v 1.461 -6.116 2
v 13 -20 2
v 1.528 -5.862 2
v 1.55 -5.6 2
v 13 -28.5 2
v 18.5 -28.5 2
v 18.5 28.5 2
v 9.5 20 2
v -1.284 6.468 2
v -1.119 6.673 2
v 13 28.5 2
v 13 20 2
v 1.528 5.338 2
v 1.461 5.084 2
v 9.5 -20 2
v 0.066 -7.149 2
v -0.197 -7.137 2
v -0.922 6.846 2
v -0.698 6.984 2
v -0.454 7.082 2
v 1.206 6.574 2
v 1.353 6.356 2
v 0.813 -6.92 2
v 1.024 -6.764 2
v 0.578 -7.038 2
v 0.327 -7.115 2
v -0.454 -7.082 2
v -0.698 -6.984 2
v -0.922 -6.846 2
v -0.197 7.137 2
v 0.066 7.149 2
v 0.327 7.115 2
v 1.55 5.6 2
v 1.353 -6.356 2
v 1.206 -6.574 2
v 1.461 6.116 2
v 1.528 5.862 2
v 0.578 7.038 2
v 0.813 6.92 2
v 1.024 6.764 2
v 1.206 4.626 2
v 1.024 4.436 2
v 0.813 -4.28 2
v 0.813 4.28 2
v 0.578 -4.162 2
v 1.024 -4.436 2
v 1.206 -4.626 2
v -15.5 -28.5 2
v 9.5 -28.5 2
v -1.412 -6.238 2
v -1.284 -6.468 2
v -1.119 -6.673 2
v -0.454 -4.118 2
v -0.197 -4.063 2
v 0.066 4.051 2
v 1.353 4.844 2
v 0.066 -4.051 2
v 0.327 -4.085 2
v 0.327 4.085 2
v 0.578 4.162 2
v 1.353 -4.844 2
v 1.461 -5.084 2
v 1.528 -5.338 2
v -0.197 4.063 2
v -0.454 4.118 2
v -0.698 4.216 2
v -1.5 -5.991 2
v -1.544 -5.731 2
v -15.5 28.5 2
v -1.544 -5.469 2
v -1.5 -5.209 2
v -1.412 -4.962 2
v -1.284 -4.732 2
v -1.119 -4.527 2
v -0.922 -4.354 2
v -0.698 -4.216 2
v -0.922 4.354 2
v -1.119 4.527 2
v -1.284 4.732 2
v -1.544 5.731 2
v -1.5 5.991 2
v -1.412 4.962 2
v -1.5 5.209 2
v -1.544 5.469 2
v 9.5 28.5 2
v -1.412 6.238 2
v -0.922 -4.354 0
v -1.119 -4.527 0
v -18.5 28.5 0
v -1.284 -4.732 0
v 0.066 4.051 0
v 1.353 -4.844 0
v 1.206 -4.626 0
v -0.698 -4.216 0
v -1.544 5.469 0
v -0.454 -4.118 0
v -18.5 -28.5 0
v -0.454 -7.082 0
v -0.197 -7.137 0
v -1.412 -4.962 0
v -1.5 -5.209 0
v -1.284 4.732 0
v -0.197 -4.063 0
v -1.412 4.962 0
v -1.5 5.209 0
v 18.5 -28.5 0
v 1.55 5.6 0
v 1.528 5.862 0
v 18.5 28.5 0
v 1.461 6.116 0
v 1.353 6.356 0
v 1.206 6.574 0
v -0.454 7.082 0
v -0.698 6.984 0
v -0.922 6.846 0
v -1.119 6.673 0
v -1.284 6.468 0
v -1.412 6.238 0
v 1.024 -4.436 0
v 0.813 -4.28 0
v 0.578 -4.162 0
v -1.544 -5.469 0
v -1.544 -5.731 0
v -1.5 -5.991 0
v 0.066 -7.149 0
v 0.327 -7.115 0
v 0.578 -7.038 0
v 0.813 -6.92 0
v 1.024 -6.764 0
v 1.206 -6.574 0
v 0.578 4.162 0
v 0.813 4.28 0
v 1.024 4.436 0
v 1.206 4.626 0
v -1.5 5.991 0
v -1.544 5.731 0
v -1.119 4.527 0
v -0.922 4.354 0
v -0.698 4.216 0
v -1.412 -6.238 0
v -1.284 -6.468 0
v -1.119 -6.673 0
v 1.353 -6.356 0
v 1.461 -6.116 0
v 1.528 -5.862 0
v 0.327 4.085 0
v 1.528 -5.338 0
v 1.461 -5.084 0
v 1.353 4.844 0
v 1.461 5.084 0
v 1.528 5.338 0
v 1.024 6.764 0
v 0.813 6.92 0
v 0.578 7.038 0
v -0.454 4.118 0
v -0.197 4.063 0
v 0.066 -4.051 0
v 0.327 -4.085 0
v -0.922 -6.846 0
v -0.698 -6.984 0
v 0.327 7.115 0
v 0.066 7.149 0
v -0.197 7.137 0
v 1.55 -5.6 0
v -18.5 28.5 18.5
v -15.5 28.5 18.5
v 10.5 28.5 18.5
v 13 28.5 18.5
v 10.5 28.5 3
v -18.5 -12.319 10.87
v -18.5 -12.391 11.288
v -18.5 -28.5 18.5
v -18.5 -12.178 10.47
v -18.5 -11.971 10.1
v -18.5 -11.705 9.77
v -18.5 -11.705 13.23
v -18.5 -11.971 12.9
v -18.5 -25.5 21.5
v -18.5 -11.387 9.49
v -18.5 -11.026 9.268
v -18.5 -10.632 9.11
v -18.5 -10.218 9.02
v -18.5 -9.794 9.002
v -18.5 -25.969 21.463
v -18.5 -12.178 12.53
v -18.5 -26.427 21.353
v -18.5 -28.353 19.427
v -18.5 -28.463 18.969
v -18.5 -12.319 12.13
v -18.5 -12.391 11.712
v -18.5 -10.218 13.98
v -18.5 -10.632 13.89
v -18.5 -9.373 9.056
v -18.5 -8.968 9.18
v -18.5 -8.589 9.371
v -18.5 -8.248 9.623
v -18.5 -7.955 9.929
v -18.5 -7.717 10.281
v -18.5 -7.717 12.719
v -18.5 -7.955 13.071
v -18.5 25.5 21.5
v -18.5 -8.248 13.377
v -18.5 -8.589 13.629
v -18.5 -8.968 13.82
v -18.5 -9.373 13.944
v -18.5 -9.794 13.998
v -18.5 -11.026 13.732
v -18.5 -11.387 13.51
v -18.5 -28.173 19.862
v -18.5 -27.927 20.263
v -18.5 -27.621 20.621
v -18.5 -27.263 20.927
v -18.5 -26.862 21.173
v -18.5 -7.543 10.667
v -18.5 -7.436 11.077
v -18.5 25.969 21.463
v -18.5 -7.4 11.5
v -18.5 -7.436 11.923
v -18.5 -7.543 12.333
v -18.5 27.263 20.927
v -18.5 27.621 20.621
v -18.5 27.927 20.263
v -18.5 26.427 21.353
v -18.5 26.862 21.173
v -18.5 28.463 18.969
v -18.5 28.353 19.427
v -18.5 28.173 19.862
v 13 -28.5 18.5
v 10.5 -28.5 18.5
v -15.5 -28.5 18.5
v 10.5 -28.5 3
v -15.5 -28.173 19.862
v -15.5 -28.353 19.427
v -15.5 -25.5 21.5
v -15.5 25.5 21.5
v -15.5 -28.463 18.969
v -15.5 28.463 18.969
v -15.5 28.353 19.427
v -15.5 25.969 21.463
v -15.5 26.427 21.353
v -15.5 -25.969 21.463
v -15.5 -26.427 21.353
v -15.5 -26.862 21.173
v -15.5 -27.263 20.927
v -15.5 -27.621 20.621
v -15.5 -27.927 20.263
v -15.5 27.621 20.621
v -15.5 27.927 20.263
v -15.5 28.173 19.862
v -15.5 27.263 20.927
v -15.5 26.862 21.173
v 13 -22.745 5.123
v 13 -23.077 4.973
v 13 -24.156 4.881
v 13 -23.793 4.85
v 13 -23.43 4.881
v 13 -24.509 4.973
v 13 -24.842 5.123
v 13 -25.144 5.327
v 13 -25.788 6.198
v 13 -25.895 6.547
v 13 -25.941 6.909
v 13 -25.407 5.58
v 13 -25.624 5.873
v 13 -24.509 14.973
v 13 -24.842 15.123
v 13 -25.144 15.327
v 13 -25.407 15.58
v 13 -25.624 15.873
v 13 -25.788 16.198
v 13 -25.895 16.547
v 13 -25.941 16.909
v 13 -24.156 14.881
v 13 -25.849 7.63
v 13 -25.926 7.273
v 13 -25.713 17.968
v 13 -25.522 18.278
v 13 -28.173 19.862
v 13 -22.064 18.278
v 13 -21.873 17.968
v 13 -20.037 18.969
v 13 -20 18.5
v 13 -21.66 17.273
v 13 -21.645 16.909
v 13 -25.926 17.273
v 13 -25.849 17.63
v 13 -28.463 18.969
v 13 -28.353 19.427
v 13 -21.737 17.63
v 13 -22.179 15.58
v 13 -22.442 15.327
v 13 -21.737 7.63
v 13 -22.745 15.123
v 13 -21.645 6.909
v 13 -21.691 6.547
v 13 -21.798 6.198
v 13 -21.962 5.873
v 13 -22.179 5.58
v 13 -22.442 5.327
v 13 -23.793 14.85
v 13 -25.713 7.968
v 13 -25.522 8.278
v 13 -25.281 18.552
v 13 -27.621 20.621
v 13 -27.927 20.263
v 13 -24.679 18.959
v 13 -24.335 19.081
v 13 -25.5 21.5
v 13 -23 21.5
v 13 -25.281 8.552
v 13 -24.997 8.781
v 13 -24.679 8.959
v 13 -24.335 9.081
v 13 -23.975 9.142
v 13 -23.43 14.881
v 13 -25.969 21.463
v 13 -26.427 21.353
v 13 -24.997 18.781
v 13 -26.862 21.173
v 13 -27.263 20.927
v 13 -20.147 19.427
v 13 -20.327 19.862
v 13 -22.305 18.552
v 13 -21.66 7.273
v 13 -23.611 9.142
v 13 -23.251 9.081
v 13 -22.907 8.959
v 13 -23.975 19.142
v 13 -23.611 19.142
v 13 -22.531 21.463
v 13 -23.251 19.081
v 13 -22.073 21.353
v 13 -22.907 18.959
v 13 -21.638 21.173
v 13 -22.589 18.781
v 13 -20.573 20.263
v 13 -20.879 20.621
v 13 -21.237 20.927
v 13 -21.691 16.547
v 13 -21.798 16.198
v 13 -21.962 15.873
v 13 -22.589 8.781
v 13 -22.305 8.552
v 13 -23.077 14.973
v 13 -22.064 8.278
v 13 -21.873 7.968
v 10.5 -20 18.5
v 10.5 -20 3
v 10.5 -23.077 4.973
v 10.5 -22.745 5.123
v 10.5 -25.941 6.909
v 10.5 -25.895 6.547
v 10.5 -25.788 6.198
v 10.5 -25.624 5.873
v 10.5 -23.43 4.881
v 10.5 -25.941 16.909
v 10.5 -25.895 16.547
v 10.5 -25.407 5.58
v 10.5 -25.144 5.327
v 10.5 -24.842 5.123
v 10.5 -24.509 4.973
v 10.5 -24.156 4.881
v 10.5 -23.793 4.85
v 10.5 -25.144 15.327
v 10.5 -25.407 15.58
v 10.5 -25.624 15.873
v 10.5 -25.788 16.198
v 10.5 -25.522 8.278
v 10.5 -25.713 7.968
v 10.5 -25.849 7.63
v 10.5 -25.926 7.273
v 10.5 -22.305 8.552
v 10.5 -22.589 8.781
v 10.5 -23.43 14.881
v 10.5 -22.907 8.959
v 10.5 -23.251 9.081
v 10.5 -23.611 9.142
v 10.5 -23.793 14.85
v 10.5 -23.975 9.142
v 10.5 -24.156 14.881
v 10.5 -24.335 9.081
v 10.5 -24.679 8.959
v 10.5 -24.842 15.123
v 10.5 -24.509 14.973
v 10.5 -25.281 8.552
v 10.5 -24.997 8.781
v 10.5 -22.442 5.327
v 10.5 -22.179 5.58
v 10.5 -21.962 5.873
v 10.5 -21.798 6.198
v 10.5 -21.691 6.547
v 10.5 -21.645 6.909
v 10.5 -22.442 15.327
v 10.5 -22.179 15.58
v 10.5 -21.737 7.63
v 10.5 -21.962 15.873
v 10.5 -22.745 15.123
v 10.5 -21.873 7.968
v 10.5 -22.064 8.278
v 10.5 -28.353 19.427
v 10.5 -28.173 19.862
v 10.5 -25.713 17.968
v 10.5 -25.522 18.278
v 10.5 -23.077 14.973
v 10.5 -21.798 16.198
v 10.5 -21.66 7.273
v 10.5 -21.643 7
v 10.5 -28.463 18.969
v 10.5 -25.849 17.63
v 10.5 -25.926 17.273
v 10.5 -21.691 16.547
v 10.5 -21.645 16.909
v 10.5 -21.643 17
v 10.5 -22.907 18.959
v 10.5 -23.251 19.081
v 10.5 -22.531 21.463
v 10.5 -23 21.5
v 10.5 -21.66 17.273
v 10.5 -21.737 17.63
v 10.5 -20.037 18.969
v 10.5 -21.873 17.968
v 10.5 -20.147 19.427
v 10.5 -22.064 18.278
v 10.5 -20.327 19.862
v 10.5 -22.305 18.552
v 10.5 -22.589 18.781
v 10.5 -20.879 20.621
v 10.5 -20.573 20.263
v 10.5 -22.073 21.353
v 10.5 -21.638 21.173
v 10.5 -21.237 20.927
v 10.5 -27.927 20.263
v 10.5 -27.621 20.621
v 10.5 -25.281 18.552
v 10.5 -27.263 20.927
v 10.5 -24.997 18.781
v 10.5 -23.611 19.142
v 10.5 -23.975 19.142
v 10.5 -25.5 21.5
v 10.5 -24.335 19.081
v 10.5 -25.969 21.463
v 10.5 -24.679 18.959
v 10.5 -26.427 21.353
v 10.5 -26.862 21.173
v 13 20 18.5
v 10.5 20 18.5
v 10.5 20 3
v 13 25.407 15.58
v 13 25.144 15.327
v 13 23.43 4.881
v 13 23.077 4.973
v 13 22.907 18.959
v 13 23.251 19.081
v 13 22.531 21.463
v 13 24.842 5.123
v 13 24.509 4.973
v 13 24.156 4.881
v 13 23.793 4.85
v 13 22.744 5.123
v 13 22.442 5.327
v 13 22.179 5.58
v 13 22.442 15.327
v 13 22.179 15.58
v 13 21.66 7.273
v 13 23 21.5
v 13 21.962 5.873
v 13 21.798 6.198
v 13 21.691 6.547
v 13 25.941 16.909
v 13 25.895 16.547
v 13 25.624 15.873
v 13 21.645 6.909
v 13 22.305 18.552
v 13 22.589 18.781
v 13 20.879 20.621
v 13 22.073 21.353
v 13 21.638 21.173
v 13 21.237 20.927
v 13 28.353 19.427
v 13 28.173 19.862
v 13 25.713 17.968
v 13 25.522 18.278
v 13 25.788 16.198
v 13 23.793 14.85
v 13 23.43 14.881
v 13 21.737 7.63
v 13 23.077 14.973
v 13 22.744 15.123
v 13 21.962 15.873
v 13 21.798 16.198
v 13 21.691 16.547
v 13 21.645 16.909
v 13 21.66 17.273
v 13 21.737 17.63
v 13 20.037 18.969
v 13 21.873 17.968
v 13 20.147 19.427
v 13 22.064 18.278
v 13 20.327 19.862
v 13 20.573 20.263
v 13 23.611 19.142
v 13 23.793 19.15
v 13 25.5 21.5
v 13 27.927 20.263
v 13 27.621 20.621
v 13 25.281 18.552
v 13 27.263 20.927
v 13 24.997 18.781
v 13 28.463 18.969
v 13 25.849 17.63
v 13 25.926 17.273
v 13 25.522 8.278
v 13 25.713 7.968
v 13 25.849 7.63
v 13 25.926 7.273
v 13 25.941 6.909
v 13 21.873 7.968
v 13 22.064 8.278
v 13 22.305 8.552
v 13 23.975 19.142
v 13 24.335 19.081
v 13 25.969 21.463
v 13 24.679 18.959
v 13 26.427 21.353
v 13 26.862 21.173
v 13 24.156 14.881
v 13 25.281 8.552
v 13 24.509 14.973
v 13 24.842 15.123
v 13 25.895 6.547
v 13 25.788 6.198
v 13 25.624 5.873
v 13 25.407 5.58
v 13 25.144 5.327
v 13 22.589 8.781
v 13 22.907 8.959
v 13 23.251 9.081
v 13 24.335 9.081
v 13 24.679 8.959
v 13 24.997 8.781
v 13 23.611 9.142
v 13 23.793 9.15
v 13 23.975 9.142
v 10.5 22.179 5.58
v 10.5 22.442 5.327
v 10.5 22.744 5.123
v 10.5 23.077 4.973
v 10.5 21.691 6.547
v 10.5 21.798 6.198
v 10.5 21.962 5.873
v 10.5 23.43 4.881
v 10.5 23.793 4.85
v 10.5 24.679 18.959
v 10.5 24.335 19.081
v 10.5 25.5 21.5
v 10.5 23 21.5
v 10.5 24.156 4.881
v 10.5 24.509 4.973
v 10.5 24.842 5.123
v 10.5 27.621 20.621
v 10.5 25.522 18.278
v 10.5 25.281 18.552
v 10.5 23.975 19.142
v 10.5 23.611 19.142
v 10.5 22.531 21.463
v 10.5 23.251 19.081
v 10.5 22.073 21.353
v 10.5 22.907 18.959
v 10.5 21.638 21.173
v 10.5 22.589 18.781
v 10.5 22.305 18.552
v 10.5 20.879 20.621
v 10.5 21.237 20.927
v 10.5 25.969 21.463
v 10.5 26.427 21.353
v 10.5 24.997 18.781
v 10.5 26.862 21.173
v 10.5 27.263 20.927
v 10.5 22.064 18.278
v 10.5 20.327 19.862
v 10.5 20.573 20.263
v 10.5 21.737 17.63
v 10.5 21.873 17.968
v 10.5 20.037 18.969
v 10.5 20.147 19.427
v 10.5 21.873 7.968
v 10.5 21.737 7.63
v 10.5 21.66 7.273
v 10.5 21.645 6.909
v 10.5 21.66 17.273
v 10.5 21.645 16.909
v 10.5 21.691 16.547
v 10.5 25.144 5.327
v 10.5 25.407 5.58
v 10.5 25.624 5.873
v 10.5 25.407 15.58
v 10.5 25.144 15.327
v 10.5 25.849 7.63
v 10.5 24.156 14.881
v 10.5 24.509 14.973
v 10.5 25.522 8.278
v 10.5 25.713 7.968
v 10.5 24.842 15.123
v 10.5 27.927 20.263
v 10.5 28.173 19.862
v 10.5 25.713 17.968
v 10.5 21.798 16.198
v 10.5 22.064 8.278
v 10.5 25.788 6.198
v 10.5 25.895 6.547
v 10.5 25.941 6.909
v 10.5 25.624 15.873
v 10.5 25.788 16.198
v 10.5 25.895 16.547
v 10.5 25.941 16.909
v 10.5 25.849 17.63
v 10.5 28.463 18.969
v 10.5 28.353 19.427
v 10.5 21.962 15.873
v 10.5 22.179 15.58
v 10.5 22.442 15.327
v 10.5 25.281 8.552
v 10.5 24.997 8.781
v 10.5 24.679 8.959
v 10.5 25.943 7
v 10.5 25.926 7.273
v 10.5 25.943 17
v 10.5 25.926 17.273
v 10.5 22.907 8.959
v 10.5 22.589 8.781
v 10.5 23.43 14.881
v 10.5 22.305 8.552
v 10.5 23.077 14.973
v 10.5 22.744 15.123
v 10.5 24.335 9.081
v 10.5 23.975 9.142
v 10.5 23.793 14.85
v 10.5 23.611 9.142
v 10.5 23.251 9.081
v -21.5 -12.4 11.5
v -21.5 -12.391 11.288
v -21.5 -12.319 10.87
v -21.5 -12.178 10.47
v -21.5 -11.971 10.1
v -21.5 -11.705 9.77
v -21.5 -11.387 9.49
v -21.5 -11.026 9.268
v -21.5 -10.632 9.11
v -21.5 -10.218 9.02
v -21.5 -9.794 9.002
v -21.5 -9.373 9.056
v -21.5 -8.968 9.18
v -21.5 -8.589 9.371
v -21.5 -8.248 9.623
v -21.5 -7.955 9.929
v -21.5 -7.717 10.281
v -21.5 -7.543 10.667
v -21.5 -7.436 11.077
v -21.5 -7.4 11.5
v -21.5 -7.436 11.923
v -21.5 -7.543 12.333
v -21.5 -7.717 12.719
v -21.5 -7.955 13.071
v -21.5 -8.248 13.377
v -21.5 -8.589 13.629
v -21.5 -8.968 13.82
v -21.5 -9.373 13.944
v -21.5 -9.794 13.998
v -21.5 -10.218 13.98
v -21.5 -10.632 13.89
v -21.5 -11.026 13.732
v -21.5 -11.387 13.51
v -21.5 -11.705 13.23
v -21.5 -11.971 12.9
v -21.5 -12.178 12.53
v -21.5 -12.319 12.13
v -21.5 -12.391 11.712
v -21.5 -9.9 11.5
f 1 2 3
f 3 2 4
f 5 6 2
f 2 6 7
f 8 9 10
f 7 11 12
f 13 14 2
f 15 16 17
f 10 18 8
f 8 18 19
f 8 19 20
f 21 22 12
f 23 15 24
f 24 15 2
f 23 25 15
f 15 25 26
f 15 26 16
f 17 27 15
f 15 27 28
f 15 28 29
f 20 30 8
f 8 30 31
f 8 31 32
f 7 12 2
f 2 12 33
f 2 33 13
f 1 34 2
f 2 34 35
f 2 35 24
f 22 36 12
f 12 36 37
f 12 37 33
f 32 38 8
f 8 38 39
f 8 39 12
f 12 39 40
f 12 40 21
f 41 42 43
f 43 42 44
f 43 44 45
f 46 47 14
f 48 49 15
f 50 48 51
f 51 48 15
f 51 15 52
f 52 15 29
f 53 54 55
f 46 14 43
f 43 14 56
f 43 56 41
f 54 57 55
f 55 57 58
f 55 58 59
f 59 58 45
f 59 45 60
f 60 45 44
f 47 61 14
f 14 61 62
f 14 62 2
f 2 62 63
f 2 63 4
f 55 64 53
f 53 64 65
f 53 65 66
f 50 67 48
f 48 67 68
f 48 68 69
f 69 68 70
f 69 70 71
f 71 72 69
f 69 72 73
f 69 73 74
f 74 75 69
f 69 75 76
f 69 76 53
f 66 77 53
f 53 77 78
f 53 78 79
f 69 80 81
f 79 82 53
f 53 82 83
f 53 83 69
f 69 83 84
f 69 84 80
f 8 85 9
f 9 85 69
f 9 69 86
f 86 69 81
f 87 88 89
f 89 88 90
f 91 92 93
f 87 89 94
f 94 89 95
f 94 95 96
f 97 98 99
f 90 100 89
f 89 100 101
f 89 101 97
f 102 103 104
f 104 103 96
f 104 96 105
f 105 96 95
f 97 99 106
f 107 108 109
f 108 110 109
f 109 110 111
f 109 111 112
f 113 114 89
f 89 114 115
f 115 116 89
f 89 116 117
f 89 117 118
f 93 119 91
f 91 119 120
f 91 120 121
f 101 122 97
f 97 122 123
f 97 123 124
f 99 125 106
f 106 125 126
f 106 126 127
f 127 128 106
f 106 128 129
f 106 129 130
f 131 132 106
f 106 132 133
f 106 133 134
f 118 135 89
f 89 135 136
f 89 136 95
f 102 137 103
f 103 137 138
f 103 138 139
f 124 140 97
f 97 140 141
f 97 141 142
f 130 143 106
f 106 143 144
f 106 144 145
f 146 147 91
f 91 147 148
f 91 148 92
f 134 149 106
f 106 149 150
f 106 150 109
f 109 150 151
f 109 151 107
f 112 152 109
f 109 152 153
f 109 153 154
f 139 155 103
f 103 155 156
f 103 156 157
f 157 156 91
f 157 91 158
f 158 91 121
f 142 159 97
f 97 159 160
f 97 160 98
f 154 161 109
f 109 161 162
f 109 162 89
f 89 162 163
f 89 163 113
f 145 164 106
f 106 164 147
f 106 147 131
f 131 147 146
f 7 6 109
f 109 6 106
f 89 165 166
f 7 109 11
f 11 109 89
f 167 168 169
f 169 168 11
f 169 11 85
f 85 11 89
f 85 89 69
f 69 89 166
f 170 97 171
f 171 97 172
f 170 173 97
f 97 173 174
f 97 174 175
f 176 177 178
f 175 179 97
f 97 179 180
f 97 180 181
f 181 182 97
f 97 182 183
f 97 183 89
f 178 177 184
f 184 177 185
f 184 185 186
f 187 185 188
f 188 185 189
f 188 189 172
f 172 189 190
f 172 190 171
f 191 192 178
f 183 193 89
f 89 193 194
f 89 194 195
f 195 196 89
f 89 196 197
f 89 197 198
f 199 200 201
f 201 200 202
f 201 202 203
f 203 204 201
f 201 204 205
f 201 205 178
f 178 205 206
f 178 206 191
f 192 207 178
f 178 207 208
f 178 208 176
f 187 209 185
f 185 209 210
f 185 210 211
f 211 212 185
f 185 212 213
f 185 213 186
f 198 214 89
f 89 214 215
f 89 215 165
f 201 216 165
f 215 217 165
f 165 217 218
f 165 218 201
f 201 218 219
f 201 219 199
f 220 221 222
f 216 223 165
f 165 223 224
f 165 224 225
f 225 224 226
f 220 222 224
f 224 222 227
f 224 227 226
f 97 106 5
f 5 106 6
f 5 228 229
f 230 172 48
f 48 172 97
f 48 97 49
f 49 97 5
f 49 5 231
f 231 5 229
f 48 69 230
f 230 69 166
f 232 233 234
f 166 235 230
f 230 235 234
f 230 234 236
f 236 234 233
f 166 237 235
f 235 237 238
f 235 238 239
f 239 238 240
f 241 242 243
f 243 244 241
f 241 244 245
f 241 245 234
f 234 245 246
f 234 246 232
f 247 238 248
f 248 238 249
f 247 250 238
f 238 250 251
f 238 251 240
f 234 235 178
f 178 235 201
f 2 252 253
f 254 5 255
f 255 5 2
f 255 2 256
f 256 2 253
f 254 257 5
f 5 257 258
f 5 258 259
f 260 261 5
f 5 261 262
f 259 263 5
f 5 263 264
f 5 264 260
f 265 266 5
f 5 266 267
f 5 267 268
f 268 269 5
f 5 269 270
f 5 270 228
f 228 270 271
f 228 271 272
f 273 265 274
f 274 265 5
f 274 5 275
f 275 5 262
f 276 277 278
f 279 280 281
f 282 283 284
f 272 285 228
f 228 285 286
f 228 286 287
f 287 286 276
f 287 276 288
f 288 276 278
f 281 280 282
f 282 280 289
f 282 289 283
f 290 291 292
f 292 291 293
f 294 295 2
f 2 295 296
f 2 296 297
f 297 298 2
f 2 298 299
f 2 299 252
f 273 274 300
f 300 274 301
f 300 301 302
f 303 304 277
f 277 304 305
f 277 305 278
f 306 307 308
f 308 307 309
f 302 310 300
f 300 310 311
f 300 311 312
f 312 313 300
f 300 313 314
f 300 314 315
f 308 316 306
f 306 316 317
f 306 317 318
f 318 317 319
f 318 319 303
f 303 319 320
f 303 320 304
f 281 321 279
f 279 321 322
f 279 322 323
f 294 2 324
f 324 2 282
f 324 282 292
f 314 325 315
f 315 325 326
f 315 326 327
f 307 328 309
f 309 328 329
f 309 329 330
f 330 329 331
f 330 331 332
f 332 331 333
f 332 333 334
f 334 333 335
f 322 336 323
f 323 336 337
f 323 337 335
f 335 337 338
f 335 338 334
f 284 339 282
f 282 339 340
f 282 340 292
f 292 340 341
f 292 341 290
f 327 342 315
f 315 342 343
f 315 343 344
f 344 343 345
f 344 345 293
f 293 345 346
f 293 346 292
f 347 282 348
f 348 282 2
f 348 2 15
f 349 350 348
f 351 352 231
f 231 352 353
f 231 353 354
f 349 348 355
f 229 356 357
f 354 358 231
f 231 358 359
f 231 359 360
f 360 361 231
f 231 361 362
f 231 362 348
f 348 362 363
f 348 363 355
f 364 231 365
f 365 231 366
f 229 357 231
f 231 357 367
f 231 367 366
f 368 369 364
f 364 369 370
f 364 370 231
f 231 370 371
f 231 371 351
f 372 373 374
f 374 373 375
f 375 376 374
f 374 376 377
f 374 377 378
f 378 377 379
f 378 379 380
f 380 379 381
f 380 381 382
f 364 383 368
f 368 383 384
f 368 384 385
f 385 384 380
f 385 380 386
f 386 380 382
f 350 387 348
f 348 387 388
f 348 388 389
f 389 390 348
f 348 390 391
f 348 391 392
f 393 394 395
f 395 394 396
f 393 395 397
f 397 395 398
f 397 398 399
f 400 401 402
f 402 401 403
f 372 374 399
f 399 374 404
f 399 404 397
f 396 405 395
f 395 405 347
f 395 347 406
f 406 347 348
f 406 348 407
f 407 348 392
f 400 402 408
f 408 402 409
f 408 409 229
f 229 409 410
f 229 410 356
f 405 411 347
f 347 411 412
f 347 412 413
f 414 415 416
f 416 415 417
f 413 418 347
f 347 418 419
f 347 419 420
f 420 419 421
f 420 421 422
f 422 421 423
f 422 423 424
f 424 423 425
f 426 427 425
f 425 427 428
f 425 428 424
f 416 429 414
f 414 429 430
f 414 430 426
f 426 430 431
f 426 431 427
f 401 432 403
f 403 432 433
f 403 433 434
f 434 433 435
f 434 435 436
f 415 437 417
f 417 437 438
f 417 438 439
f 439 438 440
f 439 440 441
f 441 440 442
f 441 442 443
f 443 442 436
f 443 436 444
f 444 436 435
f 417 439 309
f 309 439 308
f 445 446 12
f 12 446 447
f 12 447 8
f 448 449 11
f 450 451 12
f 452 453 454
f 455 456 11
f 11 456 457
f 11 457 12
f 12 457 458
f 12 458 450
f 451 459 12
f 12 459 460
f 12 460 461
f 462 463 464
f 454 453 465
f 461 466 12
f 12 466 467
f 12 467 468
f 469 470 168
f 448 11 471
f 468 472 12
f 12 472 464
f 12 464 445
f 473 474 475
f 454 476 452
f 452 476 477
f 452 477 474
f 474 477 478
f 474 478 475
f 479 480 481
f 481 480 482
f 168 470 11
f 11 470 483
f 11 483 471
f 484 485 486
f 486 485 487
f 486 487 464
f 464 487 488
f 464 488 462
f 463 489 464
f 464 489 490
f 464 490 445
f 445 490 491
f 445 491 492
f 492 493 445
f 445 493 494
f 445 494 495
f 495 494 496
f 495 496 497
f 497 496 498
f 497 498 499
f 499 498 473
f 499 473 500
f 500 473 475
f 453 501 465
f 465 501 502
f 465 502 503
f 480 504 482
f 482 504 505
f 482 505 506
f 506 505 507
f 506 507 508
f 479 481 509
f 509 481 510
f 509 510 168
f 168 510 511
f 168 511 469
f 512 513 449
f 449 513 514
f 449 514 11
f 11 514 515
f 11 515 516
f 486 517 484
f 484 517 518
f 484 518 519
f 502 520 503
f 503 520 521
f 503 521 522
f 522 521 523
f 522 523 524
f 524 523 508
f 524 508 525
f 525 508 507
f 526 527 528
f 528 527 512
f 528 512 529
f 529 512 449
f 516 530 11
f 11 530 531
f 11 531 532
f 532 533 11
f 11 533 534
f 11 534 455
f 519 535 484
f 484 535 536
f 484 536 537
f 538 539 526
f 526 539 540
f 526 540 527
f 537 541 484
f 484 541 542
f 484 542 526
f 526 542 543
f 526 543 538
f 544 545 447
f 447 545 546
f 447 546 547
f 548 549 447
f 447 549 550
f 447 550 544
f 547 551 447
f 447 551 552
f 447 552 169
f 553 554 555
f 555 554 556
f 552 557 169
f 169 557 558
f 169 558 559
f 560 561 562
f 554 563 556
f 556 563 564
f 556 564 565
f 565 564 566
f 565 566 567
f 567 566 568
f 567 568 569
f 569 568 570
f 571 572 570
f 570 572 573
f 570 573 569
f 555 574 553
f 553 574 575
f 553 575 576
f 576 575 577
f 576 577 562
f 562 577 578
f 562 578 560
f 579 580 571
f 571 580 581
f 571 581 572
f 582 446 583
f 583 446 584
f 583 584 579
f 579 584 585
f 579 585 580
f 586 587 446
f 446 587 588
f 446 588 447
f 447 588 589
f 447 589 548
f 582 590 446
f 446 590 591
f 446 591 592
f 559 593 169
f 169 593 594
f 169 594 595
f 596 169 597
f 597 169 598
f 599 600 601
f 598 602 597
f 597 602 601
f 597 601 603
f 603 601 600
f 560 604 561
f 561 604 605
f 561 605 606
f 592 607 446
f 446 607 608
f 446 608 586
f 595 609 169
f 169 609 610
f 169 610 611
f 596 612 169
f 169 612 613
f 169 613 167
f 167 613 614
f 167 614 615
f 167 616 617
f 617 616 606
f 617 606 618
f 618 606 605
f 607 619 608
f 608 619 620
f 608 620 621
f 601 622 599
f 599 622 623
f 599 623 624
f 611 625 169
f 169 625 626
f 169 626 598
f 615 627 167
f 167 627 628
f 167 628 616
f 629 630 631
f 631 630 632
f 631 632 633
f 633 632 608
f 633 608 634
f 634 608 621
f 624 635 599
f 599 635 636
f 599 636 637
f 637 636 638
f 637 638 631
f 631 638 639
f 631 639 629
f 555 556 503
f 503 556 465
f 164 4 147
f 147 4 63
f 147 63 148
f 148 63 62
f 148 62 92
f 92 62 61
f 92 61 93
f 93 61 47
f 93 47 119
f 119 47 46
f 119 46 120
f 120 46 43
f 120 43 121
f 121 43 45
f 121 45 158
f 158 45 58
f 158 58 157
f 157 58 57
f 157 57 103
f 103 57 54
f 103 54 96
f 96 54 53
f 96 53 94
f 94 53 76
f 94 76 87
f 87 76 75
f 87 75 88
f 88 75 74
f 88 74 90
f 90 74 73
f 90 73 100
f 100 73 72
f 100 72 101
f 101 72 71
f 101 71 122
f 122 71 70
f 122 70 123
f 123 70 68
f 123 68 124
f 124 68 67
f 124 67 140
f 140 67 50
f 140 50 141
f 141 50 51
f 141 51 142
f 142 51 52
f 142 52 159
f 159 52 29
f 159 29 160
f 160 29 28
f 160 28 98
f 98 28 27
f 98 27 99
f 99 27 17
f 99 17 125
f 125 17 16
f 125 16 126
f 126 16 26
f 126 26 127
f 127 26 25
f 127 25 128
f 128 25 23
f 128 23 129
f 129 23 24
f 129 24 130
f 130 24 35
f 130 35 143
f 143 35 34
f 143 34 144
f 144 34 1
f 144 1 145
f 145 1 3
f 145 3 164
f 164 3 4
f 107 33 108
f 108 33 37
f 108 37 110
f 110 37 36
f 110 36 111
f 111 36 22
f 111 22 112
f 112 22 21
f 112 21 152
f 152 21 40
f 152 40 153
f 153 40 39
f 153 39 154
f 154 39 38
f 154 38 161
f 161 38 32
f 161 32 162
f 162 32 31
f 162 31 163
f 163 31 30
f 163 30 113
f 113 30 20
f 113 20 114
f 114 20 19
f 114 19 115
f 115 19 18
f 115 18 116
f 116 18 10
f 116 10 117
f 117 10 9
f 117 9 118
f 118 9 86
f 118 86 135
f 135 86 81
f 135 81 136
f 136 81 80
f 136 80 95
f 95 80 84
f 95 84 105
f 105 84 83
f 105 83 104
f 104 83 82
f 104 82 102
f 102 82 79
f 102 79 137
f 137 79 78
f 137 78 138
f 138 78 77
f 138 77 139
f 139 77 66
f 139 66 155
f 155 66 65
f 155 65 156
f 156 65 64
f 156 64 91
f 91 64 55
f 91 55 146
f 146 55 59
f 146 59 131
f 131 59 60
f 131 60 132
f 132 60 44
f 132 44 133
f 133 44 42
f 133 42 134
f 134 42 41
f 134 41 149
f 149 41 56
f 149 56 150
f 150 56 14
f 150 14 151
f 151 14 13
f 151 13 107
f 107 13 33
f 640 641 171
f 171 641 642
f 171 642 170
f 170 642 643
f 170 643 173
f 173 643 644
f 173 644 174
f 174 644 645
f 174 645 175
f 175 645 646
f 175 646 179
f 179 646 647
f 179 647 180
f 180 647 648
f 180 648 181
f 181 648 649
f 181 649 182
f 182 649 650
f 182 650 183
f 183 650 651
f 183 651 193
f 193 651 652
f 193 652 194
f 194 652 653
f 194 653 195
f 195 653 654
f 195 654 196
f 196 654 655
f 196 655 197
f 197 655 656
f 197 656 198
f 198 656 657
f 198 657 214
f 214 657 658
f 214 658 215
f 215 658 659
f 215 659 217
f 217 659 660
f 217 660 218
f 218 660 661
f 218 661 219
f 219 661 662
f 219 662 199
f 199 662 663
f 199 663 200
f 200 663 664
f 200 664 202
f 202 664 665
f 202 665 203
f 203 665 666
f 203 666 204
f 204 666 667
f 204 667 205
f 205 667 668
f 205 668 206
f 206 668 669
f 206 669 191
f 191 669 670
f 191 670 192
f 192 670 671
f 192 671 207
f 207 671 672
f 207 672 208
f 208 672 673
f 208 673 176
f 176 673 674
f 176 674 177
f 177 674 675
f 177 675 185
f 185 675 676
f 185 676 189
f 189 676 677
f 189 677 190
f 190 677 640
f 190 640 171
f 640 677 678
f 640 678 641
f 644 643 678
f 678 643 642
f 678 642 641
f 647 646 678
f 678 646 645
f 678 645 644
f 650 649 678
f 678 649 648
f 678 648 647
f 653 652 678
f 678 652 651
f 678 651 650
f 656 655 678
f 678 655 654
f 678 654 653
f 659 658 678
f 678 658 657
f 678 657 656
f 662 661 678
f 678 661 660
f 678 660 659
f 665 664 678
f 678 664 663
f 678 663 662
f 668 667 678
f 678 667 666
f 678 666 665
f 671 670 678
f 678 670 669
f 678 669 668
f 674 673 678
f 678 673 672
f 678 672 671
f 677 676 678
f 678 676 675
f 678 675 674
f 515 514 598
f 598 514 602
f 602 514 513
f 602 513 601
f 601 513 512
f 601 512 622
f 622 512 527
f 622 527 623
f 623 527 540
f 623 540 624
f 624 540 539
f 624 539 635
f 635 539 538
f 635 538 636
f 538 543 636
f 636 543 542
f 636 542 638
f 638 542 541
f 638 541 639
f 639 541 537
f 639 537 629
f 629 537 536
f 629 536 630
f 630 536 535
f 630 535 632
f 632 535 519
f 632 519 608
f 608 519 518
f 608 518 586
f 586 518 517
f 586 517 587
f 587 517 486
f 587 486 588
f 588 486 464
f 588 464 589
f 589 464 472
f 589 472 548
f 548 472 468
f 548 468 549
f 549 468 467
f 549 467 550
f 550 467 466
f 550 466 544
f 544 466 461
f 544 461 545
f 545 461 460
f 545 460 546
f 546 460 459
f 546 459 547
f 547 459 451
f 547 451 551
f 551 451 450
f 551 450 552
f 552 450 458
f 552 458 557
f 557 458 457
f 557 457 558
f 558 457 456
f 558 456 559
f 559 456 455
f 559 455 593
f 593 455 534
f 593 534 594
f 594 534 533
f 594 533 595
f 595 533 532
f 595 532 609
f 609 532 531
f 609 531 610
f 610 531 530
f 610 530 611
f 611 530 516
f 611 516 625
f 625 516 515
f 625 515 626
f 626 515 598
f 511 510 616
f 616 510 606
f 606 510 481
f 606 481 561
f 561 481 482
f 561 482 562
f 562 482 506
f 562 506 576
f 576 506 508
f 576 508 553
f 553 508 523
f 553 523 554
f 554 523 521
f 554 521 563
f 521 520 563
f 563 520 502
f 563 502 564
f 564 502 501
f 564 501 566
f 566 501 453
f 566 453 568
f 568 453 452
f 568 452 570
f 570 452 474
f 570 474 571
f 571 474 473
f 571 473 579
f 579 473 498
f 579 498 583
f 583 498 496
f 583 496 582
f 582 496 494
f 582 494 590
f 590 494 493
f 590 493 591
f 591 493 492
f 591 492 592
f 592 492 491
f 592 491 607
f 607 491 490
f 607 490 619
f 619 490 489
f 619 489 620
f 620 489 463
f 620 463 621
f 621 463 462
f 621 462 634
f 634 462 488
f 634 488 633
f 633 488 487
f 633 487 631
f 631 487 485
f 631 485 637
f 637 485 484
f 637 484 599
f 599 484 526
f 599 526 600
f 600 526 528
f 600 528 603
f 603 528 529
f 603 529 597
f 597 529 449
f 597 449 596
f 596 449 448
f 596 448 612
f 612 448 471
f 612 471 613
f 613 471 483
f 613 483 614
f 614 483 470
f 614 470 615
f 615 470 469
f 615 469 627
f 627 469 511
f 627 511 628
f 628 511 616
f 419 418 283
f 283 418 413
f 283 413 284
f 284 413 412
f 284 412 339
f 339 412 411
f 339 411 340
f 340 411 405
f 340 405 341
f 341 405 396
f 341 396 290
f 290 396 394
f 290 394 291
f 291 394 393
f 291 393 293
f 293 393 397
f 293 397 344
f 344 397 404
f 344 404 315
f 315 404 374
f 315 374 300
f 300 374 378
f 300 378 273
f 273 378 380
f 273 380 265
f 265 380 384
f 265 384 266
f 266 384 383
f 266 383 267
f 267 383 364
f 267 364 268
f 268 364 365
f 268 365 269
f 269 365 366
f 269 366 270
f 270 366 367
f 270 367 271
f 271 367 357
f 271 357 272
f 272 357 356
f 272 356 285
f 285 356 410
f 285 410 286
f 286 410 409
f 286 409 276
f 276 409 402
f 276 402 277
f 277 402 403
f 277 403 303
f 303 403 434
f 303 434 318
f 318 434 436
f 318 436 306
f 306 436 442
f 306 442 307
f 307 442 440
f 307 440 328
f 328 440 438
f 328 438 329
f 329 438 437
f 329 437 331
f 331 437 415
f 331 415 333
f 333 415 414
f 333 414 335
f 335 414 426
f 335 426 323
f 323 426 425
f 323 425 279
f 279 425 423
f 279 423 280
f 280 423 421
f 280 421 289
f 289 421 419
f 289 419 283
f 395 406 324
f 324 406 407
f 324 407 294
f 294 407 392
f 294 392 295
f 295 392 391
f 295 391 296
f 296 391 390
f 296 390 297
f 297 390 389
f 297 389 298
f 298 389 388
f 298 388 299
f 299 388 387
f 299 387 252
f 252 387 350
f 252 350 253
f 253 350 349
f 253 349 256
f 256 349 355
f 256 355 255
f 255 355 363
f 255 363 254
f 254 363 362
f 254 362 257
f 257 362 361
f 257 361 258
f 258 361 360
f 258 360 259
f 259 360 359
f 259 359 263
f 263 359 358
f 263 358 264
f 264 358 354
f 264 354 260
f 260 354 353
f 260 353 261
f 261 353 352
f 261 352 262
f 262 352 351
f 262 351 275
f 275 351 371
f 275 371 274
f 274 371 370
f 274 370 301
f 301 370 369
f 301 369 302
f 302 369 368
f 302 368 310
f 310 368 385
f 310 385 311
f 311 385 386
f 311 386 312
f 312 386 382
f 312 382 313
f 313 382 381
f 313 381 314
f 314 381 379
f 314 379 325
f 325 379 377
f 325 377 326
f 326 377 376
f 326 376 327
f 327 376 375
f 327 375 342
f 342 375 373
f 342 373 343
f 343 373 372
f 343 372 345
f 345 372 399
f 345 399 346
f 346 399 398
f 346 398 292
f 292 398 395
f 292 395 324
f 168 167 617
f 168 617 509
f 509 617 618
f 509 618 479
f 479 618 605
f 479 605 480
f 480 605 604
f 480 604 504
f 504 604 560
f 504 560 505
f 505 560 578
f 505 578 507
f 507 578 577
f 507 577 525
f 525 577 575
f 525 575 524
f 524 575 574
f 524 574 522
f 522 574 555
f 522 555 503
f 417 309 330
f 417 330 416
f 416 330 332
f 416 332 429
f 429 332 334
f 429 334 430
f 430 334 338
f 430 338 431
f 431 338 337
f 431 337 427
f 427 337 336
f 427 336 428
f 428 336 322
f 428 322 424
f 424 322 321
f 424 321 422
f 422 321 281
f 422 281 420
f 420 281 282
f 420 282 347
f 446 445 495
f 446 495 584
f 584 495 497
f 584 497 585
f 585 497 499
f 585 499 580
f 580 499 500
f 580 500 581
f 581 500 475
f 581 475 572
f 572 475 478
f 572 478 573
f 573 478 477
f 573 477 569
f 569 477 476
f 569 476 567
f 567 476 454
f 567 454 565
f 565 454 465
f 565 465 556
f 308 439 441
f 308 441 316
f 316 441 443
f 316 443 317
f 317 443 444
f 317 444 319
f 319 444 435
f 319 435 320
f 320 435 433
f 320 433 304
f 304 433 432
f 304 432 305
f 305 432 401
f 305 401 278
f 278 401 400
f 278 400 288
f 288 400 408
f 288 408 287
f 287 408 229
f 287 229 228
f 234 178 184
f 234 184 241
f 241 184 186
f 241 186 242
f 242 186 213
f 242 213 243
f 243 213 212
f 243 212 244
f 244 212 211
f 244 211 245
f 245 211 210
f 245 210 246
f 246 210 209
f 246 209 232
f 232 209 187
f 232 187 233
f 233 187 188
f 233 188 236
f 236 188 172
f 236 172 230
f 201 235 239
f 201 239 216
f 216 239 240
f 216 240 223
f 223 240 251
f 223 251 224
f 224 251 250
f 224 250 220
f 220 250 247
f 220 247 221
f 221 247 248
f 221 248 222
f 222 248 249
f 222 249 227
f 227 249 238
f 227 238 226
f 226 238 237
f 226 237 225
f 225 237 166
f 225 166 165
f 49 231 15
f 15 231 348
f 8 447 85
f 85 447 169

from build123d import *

# Parameters (mm, degrees)
SKETCH_1_W          = 37
SKETCH_1_H          = 57
EXTRUDE_1_DEPTH     = 2
SKETCH_2_W          = 3
SKETCH_2_H          = 57
EXTRUDE_2_DEPTH     = 19.5
SKETCH_3_W          = 2.5
SKETCH_3_H          = 8.5
EXTRUDE_3_DEPTH     = 19.5
SKETCH_4_R          = 1.55
CUT_EXTRUDE_1_DEPTH = 40.17588544
SKETCH_6_R          = 2.5
EXTRUDE_4_DEPTH     = 3
SKETCH_7_R          = 2.15
CUT_EXTRUDE_2_DEPTH = 3
FILLET_1_R          = 3
CHAMFER_2_SIZE      = 1


with BuildPart() as part:
    # 草图1 → 凸台-拉伸1 (new body)
    with BuildSketch(Plane.XY):
        Rectangle(SKETCH_1_W, SKETCH_1_H)
    extrude(amount=EXTRUDE_1_DEPTH)

    # 草图2 → 凸台-拉伸2 (add)
    with BuildSketch(Plane.XY.offset(2)):
        with Locations((-17, 0)):
            Rectangle(SKETCH_2_W, SKETCH_2_H)
    extrude(amount=EXTRUDE_2_DEPTH)

    # 草图3 → 凸台-拉伸3 (add)
    with BuildSketch(Plane.XY.offset(2)):
        with Locations((11.75, -24.25)):
            Rectangle(SKETCH_3_W, SKETCH_3_H)
        with Locations((11.75, 24.25)):
            Rectangle(SKETCH_3_W, SKETCH_3_H)
    extrude(amount=EXTRUDE_3_DEPTH)

    # 草图4 → 切除-拉伸1 (cut, through all)
    with BuildSketch(Plane.XY.offset(2)):
        with Locations((0, 5.6)):
            Circle(SKETCH_4_R)
        with Locations((0, -5.6)):
            Circle(SKETCH_4_R)
    extrude(amount=-CUT_EXTRUDE_1_DEPTH, mode=Mode.SUBTRACT)

    # 草图6 → 凸台-拉伸4 (add)
    with BuildSketch(Plane.ZY.offset(18.5)):
        with Locations(Location((11.5, -9.9, 0), (0, 0, 90))):
            Circle(SKETCH_6_R)
    extrude(amount=EXTRUDE_4_DEPTH)

    # 草图7 → 切除-拉伸2 (cut)
    with BuildSketch(Plane(origin=(13, 0, 0), x_dir=(0, 0, -1), z_dir=(1, 0, 0))):
        with Locations((-17, -23.793044535)):
            Circle(SKETCH_7_R)
        with Locations((-7, -23.793044535)):
            Circle(SKETCH_7_R)
        with Locations(Location((-7, 23.793044535, 0), (0, 0, 90))):
            Circle(SKETCH_7_R)
        with Locations(Location((-17, 23.793044535, 0), (0, 0, 90))):
            Circle(SKETCH_7_R)
    extrude(amount=-CUT_EXTRUDE_2_DEPTH, mode=Mode.SUBTRACT)

    # 圆角1
    fillet_1_edges = [part.edges().sort_by_distance(p)[0] for p in [
        (-17, -28.5, 21.5),
        (-17, 28.5, 21.5),
        (11.75, -28.5, 21.5),
        (11.75, -20, 21.5),
        (11.75, 20, 21.5),
        (11.75, 28.5, 21.5),
    ]]
    fillet(fillet_1_edges, radius=FILLET_1_R)

    # 倒角2
    chamfer_2_edges = [part.edges().sort_by_distance(p)[0] for p in [
        (10.5, -24.25, 2),
        (10.5, 24.25, 2),
    ]]
    chamfer(chamfer_2_edges, length=CHAMFER_2_SIZE)


solid = part.part
